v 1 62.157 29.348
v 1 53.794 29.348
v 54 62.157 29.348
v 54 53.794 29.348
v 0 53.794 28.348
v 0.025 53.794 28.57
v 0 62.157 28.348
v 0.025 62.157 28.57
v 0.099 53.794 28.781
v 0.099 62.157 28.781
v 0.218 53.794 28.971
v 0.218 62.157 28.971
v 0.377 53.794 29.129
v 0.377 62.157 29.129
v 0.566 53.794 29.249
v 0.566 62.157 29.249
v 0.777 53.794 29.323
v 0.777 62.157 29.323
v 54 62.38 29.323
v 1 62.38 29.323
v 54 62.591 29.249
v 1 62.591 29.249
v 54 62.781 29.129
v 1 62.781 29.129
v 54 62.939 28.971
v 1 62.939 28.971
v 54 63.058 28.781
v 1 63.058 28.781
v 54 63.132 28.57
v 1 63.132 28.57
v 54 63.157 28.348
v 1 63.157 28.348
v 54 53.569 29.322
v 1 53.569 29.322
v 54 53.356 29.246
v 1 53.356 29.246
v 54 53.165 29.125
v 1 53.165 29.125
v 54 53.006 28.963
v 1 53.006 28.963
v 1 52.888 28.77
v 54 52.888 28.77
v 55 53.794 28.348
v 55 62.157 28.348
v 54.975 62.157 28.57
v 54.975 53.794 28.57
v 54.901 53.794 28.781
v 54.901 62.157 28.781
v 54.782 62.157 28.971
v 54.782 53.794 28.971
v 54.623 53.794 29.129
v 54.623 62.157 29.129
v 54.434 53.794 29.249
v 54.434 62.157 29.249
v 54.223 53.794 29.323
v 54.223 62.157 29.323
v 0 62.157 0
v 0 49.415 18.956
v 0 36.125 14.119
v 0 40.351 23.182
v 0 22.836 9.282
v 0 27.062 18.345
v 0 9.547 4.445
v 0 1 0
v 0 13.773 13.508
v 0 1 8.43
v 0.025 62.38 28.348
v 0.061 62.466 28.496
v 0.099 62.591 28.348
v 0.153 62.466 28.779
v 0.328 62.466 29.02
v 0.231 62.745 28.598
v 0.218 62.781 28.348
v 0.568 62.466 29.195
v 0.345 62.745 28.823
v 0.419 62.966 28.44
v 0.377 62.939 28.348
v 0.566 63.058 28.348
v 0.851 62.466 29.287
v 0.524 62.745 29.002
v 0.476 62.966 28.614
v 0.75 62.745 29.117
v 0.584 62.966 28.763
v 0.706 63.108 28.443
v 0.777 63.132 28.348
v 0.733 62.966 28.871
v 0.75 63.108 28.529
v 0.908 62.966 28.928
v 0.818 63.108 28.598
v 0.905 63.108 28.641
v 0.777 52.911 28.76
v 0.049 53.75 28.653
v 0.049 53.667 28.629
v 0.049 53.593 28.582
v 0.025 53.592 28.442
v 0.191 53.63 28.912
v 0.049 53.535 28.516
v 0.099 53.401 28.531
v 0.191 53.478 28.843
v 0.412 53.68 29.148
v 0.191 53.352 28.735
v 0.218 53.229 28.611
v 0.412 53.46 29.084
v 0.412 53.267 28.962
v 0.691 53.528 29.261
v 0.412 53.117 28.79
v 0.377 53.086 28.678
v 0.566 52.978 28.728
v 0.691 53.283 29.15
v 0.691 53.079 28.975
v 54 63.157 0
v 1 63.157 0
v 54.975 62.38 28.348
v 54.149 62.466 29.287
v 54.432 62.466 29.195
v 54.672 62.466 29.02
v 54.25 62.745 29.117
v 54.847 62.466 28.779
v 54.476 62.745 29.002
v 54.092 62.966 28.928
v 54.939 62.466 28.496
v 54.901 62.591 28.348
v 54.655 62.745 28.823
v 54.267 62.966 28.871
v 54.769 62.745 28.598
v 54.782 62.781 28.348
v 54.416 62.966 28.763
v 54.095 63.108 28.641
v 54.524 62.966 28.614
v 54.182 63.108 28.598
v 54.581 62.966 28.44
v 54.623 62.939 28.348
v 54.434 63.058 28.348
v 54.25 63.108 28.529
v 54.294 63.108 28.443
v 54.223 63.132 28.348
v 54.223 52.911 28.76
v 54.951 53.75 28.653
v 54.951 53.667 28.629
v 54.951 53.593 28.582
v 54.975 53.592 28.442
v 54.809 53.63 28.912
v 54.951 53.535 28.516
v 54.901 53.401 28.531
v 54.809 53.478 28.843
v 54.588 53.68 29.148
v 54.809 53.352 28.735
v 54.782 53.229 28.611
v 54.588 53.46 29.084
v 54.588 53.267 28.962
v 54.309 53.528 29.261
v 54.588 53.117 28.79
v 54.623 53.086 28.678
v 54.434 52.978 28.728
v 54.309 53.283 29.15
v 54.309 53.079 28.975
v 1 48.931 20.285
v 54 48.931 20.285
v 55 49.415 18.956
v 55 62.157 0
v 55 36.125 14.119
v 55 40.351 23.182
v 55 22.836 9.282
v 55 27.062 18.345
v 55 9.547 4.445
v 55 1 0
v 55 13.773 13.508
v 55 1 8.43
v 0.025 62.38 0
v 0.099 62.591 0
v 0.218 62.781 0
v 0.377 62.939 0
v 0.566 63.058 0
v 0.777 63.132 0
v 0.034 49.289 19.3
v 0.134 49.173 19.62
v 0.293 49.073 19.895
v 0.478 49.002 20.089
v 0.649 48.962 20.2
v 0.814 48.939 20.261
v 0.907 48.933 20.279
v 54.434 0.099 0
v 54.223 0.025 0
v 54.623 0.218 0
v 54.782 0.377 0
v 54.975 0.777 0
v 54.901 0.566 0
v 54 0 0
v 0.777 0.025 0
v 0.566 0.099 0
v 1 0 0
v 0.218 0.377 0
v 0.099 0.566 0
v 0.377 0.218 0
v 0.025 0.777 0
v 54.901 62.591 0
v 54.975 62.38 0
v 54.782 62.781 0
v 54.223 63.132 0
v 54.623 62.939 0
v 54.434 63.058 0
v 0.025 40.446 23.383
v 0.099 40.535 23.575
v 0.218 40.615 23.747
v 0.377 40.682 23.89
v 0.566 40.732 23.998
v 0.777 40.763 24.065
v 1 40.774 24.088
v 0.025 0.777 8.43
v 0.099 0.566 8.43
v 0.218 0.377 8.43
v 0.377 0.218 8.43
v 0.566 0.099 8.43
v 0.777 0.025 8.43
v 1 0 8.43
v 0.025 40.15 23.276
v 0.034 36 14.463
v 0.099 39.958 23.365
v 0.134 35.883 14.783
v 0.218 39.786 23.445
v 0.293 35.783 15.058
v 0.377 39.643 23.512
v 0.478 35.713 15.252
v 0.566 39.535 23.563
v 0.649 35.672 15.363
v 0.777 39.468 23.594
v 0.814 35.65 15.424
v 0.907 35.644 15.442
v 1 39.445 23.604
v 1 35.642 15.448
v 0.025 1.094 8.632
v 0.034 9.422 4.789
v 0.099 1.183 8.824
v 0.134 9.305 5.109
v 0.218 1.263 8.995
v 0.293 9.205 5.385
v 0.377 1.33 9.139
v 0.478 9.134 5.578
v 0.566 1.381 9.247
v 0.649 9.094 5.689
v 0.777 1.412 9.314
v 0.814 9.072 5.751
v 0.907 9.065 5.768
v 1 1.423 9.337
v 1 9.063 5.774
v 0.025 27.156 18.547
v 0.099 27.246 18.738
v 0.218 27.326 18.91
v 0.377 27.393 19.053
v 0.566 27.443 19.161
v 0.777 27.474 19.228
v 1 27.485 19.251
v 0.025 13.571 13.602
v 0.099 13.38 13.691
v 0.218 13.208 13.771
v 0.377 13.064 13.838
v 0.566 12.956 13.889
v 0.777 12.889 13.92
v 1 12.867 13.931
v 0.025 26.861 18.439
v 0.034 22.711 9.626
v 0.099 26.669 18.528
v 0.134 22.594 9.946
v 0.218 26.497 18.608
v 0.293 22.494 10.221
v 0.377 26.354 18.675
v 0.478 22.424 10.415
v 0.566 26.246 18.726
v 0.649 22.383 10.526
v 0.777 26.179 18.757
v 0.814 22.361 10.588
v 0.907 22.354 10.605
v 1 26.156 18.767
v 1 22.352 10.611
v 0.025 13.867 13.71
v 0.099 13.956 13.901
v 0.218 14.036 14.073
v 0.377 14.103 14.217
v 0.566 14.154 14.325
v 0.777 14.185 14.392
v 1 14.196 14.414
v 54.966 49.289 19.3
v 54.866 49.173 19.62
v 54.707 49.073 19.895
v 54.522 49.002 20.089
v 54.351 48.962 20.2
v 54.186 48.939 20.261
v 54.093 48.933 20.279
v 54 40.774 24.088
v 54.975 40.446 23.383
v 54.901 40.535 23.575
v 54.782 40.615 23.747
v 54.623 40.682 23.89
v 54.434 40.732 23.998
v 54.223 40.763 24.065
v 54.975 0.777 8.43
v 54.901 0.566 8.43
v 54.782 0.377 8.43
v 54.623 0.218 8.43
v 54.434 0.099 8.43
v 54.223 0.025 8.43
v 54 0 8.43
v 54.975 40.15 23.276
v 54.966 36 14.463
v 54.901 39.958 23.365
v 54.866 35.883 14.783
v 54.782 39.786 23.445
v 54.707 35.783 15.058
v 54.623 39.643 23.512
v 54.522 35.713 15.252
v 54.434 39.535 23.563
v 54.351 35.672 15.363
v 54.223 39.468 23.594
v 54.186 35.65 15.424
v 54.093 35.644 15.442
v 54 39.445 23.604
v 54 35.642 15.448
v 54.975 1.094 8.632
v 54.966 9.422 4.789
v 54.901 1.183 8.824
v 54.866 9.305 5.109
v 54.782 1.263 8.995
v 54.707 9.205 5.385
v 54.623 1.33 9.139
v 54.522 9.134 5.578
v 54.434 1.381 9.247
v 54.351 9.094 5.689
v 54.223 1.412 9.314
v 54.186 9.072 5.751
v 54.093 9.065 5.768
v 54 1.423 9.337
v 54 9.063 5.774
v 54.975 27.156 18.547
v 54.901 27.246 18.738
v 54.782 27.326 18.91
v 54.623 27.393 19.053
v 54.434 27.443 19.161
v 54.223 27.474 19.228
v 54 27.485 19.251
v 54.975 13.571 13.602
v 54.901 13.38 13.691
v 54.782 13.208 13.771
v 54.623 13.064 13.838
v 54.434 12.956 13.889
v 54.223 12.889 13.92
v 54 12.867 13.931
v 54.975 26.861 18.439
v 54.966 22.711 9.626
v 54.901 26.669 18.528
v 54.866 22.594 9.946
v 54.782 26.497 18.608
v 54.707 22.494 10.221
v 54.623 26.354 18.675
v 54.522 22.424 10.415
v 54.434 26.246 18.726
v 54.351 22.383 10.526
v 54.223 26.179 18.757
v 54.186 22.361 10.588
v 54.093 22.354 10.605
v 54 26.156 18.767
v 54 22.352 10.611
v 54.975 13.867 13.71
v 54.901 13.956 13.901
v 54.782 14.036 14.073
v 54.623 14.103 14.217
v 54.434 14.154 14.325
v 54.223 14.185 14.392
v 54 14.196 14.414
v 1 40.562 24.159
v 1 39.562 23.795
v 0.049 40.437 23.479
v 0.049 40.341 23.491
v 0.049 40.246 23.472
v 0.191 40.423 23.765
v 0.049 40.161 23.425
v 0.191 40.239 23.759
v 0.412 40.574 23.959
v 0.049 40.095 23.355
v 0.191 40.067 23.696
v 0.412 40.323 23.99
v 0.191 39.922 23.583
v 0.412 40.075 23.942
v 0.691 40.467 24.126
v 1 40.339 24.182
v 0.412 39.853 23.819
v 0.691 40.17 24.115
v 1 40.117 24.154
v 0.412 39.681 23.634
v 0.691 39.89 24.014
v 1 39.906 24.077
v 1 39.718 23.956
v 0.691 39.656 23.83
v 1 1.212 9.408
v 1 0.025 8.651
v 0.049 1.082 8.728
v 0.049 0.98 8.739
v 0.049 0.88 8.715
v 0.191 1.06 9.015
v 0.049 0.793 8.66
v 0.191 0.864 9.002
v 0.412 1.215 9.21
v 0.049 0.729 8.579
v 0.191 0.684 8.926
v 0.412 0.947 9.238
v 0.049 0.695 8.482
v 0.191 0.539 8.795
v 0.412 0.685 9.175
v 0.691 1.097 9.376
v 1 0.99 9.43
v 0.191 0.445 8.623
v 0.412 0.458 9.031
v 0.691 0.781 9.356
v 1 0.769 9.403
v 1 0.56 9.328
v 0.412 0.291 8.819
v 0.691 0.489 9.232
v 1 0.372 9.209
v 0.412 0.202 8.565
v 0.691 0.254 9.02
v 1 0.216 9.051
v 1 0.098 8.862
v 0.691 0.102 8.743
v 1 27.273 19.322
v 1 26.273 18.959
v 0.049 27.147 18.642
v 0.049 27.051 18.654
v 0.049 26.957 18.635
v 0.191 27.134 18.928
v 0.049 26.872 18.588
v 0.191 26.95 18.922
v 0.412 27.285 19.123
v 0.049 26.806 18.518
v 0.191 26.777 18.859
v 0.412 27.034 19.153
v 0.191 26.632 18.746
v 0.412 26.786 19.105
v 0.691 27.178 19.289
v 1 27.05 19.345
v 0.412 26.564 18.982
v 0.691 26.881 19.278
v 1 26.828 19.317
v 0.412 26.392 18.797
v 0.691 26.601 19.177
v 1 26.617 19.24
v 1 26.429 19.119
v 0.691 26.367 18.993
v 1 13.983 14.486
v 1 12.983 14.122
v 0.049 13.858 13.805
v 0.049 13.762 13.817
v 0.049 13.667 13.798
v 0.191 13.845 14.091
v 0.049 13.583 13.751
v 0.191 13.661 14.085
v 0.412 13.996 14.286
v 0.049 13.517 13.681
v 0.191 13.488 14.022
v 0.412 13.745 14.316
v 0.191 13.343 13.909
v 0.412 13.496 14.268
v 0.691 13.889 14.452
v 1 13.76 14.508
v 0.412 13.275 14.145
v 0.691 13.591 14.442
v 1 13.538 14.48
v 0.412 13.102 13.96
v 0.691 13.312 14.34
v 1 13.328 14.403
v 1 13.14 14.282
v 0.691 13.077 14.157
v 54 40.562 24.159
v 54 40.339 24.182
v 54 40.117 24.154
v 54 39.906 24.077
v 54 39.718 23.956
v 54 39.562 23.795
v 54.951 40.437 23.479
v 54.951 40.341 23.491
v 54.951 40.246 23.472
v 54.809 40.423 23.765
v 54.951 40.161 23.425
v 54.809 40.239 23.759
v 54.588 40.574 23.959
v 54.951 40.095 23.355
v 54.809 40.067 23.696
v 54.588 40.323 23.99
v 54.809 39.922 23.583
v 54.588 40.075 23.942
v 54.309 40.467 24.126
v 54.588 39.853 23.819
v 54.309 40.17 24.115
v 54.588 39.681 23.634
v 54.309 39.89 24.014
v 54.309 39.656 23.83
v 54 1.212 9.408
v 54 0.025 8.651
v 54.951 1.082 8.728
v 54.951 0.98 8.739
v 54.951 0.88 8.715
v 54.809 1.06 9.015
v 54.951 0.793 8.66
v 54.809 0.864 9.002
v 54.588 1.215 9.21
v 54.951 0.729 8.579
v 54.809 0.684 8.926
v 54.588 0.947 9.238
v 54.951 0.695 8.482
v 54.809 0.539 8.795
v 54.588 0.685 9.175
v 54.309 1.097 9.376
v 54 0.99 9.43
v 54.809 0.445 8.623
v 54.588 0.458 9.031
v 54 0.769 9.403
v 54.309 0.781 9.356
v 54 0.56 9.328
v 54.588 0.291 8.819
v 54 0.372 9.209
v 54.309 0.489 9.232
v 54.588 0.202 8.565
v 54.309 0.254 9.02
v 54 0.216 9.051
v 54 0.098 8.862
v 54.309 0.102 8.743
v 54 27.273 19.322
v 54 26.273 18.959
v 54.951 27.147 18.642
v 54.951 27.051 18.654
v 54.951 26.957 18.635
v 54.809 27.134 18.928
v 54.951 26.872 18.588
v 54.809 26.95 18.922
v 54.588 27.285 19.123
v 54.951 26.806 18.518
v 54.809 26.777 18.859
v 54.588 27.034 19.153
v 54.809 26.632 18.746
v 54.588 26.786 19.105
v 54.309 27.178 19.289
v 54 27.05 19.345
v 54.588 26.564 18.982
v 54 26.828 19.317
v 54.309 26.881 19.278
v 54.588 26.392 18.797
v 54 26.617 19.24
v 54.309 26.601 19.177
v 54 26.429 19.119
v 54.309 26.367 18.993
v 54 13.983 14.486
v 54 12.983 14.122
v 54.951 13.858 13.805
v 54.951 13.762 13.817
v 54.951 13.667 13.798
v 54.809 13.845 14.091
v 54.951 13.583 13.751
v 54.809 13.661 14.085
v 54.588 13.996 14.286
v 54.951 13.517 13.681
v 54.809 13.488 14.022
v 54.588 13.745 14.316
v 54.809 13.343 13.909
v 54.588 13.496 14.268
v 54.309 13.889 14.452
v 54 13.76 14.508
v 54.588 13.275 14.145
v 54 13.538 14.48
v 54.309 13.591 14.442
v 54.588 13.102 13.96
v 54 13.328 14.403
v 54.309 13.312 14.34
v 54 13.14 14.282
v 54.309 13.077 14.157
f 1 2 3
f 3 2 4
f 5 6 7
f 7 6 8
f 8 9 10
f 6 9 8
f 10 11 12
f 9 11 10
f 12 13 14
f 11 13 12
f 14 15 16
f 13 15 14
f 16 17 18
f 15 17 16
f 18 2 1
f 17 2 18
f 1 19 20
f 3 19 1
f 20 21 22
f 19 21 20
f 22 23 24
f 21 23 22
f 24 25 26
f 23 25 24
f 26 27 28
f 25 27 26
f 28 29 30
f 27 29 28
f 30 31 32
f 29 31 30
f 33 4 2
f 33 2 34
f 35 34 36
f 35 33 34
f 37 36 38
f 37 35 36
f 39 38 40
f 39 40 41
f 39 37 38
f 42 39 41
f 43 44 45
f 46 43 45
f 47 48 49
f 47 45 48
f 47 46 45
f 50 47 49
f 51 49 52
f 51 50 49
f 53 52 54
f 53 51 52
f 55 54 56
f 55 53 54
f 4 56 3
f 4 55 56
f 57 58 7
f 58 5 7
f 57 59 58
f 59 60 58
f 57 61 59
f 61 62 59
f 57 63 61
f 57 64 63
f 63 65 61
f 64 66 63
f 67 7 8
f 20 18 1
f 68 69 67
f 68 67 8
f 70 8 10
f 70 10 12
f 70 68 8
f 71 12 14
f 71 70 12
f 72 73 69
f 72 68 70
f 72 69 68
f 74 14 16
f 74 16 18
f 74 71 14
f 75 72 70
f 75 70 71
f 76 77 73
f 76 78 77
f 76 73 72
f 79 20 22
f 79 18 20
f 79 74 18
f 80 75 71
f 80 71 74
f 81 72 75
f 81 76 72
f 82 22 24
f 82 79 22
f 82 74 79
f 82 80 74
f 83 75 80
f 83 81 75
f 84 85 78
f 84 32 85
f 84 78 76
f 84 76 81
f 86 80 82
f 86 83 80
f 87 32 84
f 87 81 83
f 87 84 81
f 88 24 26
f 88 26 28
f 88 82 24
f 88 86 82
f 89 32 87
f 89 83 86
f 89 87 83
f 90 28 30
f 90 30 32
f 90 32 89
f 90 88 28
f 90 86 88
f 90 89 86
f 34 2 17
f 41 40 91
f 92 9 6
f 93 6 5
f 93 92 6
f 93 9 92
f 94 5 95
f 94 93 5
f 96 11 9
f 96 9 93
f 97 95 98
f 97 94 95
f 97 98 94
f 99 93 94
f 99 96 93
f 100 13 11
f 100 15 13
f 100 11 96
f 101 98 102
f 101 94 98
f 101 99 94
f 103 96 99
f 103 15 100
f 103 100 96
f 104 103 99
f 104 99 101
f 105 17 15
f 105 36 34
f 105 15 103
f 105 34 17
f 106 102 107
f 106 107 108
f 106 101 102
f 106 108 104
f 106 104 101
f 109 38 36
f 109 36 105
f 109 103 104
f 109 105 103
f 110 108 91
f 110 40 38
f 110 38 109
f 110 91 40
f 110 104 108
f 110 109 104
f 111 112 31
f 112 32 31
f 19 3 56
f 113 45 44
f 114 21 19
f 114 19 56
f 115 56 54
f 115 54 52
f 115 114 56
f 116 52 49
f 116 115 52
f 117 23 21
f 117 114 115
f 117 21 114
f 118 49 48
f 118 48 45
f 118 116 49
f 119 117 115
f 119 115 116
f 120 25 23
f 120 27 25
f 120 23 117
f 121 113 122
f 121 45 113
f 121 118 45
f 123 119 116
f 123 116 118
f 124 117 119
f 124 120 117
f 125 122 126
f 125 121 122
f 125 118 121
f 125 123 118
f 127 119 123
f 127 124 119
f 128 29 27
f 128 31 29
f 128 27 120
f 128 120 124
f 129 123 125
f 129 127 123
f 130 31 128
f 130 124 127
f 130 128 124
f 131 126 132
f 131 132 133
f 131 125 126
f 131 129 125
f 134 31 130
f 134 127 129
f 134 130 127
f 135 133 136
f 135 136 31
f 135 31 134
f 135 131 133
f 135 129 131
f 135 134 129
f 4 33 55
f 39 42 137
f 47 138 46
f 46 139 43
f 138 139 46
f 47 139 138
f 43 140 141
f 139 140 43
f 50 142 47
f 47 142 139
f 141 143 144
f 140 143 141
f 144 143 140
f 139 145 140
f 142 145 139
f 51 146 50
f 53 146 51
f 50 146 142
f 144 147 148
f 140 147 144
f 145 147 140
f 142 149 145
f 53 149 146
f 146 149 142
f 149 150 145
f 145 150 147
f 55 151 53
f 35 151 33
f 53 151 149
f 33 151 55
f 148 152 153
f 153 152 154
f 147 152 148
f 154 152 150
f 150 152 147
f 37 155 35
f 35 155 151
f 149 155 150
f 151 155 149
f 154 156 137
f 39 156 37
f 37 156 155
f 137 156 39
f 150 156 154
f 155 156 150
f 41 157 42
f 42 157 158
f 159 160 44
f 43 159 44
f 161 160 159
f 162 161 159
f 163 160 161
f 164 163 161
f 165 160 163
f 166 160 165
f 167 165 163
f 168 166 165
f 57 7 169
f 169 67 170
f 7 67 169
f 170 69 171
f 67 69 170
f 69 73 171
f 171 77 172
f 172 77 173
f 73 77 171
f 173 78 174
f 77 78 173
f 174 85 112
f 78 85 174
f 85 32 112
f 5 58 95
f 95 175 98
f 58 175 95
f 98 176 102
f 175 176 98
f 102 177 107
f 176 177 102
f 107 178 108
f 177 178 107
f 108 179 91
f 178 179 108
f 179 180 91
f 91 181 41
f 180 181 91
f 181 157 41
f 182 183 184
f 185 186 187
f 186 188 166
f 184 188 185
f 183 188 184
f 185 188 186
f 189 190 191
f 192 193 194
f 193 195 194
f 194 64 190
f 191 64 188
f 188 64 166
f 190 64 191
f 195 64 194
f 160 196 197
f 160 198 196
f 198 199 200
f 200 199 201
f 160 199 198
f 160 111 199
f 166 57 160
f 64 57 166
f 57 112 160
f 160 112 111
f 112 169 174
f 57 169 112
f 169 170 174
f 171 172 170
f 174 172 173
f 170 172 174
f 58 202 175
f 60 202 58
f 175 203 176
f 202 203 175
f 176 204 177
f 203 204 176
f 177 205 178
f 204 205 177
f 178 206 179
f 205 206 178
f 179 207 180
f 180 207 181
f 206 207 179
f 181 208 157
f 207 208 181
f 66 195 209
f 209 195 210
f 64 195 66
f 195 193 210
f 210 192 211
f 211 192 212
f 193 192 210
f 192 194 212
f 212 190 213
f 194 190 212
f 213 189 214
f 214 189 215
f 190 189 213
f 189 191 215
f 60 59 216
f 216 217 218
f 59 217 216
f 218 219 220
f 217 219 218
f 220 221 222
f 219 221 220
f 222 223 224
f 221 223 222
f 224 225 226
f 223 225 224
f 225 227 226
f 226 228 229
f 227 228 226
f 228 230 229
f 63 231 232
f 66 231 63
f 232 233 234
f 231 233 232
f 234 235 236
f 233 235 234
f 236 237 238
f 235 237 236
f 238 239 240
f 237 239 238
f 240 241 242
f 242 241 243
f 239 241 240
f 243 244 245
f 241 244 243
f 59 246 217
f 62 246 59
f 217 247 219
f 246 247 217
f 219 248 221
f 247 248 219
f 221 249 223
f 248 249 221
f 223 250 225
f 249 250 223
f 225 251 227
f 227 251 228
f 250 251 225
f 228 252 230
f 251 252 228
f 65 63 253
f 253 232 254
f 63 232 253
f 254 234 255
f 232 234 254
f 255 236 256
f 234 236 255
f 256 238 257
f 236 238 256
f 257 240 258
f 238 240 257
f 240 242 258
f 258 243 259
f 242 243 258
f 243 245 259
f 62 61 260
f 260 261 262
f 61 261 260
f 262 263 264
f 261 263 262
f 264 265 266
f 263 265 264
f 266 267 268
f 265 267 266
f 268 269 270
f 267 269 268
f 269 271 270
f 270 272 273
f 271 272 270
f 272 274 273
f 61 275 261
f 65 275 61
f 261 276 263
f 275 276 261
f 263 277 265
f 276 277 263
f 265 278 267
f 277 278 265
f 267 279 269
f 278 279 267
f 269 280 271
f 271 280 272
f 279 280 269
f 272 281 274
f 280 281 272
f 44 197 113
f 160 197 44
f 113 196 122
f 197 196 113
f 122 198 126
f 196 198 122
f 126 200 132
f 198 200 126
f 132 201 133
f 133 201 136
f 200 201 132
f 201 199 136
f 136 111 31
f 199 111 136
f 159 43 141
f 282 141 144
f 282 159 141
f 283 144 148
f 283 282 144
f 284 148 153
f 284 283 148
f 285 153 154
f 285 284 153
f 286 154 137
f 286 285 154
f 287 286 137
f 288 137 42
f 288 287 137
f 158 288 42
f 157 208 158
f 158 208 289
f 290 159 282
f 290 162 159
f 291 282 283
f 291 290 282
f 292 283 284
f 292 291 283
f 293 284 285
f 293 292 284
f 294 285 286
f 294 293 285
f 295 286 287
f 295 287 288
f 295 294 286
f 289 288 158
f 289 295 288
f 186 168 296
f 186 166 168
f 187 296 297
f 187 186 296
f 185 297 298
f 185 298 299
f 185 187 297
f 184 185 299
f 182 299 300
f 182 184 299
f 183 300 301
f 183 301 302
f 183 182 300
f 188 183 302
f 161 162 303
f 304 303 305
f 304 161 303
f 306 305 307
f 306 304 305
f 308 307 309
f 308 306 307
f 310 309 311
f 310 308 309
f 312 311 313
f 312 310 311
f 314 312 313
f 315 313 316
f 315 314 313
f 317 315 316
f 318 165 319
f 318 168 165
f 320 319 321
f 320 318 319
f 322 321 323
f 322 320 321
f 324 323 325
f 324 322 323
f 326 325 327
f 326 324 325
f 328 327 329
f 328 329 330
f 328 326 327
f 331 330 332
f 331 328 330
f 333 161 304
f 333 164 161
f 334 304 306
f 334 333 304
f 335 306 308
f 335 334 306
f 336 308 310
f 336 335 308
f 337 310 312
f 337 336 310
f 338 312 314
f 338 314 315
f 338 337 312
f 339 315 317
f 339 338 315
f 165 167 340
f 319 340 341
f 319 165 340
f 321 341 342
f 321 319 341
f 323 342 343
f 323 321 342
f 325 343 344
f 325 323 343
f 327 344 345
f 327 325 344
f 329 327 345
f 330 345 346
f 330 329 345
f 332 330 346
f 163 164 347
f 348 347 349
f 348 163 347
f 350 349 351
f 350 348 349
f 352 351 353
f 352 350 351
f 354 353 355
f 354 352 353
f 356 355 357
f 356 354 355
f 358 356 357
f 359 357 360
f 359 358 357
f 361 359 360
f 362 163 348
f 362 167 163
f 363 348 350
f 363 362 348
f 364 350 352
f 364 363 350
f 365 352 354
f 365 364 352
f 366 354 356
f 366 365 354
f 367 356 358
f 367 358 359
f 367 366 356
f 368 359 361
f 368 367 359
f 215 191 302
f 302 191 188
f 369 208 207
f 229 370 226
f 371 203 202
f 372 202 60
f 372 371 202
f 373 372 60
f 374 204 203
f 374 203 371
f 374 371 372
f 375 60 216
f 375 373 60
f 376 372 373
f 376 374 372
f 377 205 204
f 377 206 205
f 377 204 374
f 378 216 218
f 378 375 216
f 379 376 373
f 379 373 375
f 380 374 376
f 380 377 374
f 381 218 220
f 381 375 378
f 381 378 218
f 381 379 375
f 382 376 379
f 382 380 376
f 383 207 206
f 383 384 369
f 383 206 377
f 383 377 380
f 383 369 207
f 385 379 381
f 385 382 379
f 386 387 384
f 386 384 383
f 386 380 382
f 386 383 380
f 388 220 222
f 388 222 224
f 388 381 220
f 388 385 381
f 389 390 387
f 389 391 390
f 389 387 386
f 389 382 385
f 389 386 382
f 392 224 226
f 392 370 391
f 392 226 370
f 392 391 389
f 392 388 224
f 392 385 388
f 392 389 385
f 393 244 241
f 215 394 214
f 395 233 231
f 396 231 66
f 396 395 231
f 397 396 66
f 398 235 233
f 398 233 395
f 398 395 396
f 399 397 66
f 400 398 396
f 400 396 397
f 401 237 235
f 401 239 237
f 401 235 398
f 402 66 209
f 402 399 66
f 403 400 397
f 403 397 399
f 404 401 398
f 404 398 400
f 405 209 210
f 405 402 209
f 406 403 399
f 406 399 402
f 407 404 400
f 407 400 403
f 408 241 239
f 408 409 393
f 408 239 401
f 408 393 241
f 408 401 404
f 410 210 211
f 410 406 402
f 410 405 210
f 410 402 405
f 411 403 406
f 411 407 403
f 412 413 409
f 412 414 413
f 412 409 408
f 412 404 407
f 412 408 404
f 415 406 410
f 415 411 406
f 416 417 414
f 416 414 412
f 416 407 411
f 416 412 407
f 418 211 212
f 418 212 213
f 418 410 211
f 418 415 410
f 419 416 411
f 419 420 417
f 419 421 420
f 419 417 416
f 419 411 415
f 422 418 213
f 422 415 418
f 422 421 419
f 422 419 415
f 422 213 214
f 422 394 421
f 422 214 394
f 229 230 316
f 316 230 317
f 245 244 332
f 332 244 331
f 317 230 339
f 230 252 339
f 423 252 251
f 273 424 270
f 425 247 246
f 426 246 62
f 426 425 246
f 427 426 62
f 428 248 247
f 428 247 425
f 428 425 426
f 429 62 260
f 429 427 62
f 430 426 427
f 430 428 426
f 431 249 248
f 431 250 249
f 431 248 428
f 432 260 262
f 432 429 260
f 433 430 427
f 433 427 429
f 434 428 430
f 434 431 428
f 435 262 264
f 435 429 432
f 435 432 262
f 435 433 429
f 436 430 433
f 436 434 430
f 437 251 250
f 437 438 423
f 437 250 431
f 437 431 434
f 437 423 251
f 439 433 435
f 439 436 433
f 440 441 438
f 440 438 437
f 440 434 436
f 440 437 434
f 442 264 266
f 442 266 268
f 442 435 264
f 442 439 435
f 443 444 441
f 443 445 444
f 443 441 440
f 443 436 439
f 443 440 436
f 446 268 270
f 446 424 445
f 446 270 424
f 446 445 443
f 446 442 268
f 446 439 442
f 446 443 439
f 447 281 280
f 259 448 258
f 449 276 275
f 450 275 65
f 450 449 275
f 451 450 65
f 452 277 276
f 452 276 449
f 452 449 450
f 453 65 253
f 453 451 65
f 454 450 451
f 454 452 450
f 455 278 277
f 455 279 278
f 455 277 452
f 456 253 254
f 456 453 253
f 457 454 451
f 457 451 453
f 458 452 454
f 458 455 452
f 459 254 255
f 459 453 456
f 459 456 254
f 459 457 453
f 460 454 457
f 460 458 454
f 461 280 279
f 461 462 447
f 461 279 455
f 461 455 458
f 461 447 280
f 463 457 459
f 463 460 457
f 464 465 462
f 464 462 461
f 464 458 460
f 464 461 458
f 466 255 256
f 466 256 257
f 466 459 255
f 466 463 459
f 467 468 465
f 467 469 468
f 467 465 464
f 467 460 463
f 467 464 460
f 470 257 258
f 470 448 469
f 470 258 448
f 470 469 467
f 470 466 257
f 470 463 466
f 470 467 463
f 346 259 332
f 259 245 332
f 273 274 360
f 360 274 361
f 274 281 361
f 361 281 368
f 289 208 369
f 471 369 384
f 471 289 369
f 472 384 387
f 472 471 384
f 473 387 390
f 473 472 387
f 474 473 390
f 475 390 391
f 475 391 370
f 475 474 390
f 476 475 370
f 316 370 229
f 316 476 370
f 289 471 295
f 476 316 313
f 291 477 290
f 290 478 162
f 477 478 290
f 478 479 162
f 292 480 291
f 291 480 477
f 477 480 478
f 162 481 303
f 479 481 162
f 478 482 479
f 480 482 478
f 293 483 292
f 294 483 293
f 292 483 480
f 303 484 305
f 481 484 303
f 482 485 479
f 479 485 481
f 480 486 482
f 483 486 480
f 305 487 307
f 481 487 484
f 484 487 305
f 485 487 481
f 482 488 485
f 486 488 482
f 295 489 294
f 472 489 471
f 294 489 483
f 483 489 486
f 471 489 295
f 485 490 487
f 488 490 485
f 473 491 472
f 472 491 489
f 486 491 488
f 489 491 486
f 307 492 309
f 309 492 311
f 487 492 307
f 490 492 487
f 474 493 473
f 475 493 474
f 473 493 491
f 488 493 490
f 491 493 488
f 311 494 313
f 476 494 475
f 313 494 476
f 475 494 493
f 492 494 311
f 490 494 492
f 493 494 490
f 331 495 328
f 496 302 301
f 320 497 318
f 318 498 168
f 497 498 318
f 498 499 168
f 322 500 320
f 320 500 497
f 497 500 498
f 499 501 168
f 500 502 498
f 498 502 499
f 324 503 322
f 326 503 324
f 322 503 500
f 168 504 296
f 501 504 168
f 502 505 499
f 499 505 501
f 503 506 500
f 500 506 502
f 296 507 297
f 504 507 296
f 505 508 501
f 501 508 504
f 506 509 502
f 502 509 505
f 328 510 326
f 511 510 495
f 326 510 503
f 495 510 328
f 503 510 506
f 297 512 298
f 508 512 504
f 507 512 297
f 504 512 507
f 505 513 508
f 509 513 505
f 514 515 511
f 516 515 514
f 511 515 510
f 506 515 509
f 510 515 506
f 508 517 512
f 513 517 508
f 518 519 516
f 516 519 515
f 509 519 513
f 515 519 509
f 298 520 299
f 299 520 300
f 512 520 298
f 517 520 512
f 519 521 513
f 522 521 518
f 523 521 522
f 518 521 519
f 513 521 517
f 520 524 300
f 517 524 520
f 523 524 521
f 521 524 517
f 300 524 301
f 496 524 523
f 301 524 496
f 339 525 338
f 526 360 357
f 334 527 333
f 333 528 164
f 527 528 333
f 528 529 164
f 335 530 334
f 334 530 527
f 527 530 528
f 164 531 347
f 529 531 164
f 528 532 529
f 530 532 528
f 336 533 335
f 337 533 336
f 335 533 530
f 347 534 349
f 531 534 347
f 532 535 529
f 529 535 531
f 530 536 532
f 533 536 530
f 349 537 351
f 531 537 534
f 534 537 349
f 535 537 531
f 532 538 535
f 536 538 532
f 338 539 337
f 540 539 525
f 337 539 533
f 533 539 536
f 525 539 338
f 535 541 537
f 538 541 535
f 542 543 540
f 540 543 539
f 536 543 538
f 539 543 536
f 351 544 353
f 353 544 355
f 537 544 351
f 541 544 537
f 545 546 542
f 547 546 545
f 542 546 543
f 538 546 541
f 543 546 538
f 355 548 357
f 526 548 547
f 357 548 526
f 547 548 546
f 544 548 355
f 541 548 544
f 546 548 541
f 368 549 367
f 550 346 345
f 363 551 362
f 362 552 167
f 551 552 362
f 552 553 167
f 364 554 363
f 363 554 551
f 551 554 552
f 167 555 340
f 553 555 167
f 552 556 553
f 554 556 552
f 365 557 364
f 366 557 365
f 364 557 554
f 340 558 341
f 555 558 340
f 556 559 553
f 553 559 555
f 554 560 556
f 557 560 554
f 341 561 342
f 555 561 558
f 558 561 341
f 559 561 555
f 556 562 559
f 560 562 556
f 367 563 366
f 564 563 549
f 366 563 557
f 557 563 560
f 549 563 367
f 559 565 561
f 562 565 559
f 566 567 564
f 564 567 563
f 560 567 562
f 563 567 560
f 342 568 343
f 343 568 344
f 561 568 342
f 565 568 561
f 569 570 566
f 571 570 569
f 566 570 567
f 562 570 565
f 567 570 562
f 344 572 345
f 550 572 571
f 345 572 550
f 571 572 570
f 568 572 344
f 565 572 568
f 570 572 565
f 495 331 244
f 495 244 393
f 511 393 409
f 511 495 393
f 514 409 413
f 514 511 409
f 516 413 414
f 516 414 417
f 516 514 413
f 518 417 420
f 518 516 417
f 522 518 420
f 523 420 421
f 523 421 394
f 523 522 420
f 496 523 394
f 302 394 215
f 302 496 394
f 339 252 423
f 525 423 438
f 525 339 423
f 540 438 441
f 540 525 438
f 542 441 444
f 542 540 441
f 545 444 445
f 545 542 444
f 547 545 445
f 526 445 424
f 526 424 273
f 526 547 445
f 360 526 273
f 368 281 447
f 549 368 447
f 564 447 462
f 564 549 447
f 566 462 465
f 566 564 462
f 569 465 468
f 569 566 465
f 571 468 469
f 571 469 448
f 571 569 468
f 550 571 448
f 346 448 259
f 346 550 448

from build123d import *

# Parameters (mm, degrees)
PAD_DEPTH   = 55
FILLET_R    = 1
FILLET001_R = 1
FILLET002_R = 1
FILLET003_R = 1


with BuildPart() as part:
    # Sketch → Pad (new body)
    with BuildSketch(Plane.YZ):
        Polygon((0, 0), (63.157042, 0), (63.157042, 29.347581), (53.157042, 29.347581), (48.930859, 20.284503), (39.867781, 24.510686), (35.641599, 15.447608), (26.578521, 19.673791), (22.352338, 10.610713), (13.28926, 14.836895), (9.063078, 5.773817), (0, 10), align=None)
    extrude(amount=PAD_DEPTH)

    # Fillet
    fillet_edges = [part.edges().sort_by_distance(p)[0] for p in [
        (27.5, 13.28926, 14.836895),
        (27.5, 26.578521, 19.673791),
        (27.5, 39.867781, 24.510686),
        (27.5, 53.157042, 29.347581),
        (27.5, 0, 10),
    ]]
    fillet(fillet_edges, radius=FILLET_R)

    # Fillet001
    fillet001_edges = [part.edges().sort_by_distance(p)[0] for p in [
        (55, 18.273953, 12.512495),
        (55, 5.242848, 7.55522),
        (55, 31.563214, 17.34939),
        (55, 44.852474, 22.186285),
        (55, 50.909332, 24.527351),
    ]]
    fillet(fillet001_edges, radius=FILLET001_R)

    # Fillet002
    fillet002_edges = [part.edges().sort_by_distance(p)[0] for p in [
        (0, 44.852474, 22.186285),
        (0, 50.909332, 24.527351),
        (0, 31.563214, 17.34939),
        (0, 18.273953, 12.512495),
        (0, 5.242848, 7.55522),
    ]]
    fillet(fillet002_edges, radius=FILLET002_R)

    # Fillet003
    fillet003_edges = [part.edges().sort_by_distance(p)[0] for p in [
        (27.5, 63.157042, 29.347581),
        (0, 63.157042, 14.173791),
        (55, 63.157042, 14.173791),
    ]]
    fillet(fillet003_edges, radius=FILLET003_R)


solid = part.part
